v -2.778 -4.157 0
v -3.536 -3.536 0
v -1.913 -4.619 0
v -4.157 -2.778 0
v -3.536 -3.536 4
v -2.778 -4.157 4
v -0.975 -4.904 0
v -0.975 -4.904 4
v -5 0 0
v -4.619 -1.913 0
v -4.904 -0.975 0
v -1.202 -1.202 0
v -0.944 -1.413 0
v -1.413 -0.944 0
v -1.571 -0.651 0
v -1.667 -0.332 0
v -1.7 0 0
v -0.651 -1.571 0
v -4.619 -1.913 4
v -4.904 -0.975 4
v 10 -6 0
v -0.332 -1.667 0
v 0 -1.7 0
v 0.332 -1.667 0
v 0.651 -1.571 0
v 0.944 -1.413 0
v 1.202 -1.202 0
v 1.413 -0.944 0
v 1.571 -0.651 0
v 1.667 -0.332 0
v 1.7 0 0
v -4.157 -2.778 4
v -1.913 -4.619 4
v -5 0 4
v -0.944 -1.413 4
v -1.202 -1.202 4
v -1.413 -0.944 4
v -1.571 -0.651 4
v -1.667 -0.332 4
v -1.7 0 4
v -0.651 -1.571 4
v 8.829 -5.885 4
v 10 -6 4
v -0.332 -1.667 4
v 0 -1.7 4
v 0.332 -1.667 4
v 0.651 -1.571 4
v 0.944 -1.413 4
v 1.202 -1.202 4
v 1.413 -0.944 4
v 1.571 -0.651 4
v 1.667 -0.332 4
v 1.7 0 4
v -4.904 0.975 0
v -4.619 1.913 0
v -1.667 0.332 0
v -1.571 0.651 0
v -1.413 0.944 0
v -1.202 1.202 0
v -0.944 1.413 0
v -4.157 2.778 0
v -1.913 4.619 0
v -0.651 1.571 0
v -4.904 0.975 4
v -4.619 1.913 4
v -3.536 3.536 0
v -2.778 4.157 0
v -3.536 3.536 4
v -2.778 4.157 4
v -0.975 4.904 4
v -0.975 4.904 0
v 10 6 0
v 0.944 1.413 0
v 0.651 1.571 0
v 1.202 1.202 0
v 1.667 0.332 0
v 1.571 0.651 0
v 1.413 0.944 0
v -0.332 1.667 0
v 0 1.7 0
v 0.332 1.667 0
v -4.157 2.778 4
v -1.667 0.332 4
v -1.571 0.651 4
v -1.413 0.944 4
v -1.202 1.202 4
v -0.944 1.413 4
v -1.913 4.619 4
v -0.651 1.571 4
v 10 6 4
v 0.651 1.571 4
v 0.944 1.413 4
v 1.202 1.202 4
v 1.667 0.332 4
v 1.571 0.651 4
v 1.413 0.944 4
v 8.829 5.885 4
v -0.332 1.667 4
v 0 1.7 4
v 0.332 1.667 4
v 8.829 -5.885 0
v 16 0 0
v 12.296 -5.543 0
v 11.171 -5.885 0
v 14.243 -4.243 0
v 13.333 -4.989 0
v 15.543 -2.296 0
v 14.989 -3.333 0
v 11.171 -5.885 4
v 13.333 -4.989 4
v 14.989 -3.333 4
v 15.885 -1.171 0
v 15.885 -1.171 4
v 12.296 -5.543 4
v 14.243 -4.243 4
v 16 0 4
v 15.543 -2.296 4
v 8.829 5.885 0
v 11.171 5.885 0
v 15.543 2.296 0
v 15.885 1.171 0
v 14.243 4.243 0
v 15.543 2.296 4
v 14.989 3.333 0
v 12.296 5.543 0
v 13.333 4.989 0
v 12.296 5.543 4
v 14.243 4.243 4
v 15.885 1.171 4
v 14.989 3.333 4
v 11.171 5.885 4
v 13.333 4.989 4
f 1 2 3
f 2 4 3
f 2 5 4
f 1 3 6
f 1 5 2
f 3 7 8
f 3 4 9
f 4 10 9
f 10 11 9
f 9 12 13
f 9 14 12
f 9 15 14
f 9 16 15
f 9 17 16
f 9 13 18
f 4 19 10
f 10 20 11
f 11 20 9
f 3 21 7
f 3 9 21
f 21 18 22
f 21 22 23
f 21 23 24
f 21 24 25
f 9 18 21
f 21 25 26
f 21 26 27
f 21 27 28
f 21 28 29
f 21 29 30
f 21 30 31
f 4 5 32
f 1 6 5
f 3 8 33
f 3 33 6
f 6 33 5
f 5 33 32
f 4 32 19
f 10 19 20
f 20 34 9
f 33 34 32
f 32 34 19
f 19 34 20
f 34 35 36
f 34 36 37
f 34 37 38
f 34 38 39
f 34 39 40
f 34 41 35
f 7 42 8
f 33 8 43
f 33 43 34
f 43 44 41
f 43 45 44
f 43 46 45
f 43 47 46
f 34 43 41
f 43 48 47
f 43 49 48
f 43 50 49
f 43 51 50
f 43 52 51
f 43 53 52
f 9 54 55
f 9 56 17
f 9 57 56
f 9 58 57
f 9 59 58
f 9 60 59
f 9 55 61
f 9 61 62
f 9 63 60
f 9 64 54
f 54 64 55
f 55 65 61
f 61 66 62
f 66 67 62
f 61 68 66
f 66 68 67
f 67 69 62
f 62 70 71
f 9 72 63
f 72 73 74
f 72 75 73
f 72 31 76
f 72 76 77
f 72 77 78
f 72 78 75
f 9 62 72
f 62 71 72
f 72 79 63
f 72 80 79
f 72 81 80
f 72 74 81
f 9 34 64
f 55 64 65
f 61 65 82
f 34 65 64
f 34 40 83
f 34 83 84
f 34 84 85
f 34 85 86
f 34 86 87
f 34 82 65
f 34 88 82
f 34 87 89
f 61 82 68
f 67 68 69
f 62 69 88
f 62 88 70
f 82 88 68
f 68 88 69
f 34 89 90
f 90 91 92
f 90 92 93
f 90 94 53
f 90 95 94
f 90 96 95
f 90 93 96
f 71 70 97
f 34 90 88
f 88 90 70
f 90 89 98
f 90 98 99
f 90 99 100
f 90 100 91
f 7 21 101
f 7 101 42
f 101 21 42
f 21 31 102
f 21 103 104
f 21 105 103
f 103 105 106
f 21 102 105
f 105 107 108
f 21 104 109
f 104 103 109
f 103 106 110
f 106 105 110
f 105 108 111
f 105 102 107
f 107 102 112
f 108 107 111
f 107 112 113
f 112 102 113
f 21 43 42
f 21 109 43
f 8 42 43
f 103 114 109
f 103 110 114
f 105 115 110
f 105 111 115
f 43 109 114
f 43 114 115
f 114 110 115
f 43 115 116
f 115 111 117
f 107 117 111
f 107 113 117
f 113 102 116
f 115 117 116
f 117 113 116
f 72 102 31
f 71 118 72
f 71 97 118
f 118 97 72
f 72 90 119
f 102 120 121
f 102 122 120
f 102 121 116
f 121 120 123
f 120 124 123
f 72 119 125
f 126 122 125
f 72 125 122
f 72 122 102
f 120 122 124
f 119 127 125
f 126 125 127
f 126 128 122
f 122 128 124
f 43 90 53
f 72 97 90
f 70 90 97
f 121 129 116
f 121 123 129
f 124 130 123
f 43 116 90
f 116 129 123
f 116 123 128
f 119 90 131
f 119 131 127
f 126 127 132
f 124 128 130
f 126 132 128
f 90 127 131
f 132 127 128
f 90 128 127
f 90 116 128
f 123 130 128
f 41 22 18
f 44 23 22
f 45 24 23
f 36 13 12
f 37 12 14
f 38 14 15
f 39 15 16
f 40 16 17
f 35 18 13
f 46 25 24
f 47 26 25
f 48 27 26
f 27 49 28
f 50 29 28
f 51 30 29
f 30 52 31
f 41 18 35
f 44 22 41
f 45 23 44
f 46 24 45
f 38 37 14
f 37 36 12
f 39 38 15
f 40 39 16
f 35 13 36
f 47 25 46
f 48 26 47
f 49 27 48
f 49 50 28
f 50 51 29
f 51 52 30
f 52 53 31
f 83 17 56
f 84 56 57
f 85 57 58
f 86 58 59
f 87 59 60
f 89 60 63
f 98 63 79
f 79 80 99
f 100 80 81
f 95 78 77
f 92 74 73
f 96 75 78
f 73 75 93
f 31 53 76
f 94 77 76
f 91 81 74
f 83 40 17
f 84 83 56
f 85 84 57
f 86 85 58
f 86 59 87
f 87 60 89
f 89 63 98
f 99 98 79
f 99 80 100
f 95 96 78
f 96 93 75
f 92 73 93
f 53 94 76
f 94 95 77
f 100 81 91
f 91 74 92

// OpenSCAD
// =============================================================================
// JETSON CASE CLAMP — removable corner hold-down (jetson_case_mount rework)
// =============================================================================
// backlog #33/#34 (2026-07-08). The cradle can't have FIXED inward top tabs —
// the case (assembled off-robot, bezel on) must DROP straight in between the
// corner uprights. So retention is 4 of THESE: after the case is in, each clamp
// drops onto an upright top and an M3x8 pulls it down; its far pad caps the
// case's SOLID CORNER COLUMN (z102.8), stopping lift/tumble. Bear-only (NO case
// drilling). Add a TPU/EVA shim on the pad underside for preload + damping.
//
// Local print frame: FLAT on the bed (z0..4). Bolt hole at the origin (over the
// upright); the bearing pad reaches +x by REACH to sit over the corner column.
// preview_assembly.py places 4 (rotated toward each corner). Print 4x, PA6-CF.

$fn = 32; EPS = 0.05;
M3_CLEAR = 3.4;
CLAMP_T = 4;          // plate thickness
REACH   = 10;         // bolt(upright) -> pad(corner column) centre distance

module jetson_clamp() {
    difference() {
        hull() {
            cylinder(d = 10, h = CLAMP_T);                 // over the upright (bolt)
            translate([REACH, 0, 0]) cylinder(d = 12, h = CLAMP_T);  // over the corner col
        }
        translate([0, 0, -EPS]) cylinder(d = M3_CLEAR, h = CLAMP_T + 2 * EPS);  // M3
    }
}

jetson_clamp();
